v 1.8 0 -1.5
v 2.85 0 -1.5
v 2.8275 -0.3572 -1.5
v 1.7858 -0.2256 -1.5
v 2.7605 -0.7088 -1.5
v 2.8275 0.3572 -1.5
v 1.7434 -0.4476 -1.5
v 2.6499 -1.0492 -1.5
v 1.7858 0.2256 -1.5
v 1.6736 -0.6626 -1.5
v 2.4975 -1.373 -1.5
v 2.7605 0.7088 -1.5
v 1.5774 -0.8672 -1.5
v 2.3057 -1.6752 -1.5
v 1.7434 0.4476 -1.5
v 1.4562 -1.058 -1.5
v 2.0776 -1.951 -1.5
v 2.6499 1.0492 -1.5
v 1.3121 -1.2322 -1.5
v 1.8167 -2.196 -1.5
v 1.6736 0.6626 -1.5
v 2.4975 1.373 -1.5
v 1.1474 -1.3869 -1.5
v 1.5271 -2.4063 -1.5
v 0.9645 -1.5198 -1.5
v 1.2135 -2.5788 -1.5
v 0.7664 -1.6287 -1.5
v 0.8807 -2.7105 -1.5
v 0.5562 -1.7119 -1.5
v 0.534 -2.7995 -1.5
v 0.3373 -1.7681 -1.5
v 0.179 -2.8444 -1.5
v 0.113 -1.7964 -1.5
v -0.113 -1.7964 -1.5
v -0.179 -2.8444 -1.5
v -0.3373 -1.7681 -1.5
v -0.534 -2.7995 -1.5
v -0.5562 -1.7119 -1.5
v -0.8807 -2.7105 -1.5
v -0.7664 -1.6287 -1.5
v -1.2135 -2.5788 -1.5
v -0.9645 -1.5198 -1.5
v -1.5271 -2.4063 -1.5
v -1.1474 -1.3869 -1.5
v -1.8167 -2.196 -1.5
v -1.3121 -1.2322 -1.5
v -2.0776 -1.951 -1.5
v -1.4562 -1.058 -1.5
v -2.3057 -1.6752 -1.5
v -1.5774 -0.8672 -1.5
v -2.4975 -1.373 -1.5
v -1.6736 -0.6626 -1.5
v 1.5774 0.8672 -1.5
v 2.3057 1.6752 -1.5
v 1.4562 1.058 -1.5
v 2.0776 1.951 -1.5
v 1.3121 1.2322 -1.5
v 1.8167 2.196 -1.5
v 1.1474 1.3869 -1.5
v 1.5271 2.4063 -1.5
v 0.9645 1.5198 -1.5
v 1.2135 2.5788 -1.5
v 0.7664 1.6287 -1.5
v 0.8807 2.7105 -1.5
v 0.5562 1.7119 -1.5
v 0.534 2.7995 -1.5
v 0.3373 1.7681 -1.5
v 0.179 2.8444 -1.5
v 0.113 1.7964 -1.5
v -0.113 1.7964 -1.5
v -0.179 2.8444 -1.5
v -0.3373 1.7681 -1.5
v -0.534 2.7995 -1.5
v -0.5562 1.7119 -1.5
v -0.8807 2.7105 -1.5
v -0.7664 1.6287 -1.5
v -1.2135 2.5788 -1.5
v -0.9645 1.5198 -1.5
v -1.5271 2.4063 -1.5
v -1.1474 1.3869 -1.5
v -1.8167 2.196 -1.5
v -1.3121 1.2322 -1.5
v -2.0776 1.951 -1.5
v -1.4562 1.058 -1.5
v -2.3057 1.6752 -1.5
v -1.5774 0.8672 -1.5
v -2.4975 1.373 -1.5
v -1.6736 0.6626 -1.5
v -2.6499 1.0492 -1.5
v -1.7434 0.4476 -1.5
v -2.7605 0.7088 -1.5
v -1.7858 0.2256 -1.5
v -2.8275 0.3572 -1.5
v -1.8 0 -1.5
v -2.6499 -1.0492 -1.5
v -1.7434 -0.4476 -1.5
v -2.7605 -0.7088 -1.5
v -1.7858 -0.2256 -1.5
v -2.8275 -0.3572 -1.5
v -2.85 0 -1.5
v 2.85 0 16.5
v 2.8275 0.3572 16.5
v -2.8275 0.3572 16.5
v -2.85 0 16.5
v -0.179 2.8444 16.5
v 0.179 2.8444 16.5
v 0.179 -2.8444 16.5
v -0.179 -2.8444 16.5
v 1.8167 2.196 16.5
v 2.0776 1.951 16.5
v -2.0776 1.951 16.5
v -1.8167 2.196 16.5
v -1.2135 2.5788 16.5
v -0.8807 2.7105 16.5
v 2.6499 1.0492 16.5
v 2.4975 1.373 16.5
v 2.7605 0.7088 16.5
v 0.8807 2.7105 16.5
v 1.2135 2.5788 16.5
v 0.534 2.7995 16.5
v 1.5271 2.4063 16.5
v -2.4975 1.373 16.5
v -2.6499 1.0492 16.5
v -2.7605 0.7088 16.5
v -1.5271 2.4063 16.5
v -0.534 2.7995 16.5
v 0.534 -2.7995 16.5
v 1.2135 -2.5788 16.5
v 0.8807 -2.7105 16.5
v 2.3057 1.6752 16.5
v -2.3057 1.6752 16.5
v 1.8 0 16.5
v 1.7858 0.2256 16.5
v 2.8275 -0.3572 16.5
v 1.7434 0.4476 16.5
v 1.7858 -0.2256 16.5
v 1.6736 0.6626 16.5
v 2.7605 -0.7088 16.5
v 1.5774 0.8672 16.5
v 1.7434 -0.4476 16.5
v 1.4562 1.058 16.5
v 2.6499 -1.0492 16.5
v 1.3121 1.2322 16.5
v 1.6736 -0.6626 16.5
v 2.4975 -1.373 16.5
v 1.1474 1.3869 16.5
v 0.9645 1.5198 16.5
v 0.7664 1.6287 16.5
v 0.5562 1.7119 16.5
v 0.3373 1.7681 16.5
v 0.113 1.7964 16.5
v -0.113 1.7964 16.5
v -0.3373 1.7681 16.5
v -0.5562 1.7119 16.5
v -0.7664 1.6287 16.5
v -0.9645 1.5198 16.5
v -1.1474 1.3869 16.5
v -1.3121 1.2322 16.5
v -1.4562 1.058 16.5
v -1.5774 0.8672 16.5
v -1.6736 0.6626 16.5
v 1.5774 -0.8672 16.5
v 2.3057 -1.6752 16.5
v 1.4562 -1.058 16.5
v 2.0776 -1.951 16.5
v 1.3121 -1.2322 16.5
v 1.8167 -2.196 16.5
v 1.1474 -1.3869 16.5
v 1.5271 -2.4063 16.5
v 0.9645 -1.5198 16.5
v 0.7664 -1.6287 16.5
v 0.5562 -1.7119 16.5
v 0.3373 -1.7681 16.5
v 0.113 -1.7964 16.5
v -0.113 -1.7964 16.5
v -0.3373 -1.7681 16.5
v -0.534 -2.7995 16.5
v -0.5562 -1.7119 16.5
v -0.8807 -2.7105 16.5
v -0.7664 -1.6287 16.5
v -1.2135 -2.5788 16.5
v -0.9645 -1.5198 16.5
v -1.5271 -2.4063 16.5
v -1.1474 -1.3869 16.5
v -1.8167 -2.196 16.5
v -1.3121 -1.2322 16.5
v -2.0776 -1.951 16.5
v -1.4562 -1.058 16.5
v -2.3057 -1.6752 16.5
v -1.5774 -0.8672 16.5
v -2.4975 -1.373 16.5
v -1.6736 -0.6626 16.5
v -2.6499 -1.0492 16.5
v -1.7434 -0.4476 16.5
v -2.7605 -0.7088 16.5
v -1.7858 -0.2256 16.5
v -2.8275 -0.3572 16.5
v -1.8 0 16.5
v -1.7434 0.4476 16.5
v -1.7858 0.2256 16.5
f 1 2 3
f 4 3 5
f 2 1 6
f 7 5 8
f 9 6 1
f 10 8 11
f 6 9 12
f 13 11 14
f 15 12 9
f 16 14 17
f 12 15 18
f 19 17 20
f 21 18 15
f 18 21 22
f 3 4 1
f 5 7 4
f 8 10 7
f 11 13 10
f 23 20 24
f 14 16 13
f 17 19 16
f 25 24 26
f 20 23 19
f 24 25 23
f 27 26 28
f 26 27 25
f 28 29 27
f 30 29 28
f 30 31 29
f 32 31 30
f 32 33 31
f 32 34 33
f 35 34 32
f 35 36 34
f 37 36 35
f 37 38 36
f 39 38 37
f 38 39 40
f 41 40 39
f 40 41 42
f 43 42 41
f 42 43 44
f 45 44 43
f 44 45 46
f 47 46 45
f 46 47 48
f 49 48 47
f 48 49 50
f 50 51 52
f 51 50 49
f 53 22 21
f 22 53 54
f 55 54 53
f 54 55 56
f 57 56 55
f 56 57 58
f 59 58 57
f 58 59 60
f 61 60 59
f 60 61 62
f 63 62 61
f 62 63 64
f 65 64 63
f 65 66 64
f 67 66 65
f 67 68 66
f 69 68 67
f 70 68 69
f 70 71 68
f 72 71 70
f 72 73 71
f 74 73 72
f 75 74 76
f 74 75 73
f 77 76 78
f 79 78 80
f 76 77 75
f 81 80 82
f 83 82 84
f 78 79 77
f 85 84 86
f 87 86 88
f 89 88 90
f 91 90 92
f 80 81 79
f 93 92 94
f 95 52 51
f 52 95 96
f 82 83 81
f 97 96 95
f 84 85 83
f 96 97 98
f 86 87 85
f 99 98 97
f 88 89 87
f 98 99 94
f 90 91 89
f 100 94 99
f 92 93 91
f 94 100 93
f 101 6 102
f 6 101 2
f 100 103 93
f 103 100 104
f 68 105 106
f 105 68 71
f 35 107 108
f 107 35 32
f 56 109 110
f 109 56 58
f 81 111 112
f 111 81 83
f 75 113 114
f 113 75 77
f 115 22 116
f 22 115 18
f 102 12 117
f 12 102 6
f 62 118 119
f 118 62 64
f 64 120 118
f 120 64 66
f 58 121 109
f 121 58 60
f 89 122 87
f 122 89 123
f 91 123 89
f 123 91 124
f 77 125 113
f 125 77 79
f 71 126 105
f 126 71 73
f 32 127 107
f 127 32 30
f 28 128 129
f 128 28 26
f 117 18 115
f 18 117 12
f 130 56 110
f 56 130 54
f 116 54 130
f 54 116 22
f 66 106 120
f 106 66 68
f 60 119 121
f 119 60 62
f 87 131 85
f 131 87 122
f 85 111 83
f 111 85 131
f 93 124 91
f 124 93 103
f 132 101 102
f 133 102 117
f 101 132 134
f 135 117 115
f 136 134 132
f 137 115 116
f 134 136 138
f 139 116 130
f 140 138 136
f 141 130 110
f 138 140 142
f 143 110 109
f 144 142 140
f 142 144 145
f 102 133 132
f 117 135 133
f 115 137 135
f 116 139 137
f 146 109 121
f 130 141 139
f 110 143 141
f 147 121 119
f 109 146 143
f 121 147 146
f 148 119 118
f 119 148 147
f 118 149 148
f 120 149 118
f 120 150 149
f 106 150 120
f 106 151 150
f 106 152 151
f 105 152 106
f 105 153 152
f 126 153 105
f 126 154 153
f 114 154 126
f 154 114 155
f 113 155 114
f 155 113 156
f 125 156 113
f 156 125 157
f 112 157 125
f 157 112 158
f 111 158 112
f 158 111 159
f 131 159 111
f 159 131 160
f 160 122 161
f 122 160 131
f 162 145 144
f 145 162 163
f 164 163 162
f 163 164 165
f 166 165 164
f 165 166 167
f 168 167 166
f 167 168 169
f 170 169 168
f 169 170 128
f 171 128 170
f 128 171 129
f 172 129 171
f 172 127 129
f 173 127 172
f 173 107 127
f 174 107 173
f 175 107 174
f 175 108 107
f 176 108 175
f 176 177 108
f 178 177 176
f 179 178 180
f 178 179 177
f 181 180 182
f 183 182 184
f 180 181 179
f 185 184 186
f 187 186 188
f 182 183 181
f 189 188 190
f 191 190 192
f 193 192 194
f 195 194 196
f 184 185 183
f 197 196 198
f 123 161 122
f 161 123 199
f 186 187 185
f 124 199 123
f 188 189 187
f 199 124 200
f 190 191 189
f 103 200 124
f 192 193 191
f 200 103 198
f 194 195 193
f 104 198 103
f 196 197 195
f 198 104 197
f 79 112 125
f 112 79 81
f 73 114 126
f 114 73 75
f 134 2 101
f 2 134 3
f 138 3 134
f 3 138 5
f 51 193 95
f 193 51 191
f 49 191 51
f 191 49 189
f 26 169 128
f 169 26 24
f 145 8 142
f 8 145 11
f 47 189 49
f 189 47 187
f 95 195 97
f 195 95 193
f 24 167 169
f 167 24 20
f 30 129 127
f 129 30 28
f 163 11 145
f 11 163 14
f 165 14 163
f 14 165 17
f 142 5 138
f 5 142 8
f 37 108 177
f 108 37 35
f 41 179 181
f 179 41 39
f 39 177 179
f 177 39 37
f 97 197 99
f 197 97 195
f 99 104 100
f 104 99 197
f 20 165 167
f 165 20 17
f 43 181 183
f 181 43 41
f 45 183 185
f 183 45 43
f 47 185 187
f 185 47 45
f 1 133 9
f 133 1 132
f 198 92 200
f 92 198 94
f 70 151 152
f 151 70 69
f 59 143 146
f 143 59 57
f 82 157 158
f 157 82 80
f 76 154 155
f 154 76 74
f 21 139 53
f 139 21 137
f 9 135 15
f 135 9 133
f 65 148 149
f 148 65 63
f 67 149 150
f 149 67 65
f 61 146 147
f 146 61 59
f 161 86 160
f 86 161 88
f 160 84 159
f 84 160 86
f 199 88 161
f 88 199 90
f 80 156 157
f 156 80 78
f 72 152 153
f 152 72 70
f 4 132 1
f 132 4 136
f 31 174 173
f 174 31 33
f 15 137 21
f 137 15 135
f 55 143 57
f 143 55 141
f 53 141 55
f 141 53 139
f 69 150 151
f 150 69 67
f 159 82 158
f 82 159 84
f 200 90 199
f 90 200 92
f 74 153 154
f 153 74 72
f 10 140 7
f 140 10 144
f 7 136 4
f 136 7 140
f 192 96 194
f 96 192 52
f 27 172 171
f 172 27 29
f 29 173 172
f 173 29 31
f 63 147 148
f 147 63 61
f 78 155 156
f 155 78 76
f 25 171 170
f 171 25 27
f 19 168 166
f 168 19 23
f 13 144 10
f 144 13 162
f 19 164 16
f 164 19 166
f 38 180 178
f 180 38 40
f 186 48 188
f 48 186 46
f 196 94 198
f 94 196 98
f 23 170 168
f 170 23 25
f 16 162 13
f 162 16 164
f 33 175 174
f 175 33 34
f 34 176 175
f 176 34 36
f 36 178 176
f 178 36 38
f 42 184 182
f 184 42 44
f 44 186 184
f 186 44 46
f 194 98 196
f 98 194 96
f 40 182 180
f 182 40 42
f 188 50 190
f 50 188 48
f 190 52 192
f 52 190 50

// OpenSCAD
$fn = 50;


difference() {
	union() {
		translate(v = [0, 0, -1.5000000000]) {
			rotate(a = [0, 0, 0]) {
				cylinder(h = 3, r = 1.0000000000);
			}
		}
		translate(v = [0, 0, -1.5000000000]) {
			rotate(a = [0, 0, 0]) {
				cylinder(h = 18, r = 2.8500000000);
			}
		}
	}
	union() {
		translate(v = [0, 0, -125.0000000000]) {
			rotate(a = [0, 0, 0]) {
				cylinder(h = 250, r = 1.8000000000);
			}
		}
	}
}
